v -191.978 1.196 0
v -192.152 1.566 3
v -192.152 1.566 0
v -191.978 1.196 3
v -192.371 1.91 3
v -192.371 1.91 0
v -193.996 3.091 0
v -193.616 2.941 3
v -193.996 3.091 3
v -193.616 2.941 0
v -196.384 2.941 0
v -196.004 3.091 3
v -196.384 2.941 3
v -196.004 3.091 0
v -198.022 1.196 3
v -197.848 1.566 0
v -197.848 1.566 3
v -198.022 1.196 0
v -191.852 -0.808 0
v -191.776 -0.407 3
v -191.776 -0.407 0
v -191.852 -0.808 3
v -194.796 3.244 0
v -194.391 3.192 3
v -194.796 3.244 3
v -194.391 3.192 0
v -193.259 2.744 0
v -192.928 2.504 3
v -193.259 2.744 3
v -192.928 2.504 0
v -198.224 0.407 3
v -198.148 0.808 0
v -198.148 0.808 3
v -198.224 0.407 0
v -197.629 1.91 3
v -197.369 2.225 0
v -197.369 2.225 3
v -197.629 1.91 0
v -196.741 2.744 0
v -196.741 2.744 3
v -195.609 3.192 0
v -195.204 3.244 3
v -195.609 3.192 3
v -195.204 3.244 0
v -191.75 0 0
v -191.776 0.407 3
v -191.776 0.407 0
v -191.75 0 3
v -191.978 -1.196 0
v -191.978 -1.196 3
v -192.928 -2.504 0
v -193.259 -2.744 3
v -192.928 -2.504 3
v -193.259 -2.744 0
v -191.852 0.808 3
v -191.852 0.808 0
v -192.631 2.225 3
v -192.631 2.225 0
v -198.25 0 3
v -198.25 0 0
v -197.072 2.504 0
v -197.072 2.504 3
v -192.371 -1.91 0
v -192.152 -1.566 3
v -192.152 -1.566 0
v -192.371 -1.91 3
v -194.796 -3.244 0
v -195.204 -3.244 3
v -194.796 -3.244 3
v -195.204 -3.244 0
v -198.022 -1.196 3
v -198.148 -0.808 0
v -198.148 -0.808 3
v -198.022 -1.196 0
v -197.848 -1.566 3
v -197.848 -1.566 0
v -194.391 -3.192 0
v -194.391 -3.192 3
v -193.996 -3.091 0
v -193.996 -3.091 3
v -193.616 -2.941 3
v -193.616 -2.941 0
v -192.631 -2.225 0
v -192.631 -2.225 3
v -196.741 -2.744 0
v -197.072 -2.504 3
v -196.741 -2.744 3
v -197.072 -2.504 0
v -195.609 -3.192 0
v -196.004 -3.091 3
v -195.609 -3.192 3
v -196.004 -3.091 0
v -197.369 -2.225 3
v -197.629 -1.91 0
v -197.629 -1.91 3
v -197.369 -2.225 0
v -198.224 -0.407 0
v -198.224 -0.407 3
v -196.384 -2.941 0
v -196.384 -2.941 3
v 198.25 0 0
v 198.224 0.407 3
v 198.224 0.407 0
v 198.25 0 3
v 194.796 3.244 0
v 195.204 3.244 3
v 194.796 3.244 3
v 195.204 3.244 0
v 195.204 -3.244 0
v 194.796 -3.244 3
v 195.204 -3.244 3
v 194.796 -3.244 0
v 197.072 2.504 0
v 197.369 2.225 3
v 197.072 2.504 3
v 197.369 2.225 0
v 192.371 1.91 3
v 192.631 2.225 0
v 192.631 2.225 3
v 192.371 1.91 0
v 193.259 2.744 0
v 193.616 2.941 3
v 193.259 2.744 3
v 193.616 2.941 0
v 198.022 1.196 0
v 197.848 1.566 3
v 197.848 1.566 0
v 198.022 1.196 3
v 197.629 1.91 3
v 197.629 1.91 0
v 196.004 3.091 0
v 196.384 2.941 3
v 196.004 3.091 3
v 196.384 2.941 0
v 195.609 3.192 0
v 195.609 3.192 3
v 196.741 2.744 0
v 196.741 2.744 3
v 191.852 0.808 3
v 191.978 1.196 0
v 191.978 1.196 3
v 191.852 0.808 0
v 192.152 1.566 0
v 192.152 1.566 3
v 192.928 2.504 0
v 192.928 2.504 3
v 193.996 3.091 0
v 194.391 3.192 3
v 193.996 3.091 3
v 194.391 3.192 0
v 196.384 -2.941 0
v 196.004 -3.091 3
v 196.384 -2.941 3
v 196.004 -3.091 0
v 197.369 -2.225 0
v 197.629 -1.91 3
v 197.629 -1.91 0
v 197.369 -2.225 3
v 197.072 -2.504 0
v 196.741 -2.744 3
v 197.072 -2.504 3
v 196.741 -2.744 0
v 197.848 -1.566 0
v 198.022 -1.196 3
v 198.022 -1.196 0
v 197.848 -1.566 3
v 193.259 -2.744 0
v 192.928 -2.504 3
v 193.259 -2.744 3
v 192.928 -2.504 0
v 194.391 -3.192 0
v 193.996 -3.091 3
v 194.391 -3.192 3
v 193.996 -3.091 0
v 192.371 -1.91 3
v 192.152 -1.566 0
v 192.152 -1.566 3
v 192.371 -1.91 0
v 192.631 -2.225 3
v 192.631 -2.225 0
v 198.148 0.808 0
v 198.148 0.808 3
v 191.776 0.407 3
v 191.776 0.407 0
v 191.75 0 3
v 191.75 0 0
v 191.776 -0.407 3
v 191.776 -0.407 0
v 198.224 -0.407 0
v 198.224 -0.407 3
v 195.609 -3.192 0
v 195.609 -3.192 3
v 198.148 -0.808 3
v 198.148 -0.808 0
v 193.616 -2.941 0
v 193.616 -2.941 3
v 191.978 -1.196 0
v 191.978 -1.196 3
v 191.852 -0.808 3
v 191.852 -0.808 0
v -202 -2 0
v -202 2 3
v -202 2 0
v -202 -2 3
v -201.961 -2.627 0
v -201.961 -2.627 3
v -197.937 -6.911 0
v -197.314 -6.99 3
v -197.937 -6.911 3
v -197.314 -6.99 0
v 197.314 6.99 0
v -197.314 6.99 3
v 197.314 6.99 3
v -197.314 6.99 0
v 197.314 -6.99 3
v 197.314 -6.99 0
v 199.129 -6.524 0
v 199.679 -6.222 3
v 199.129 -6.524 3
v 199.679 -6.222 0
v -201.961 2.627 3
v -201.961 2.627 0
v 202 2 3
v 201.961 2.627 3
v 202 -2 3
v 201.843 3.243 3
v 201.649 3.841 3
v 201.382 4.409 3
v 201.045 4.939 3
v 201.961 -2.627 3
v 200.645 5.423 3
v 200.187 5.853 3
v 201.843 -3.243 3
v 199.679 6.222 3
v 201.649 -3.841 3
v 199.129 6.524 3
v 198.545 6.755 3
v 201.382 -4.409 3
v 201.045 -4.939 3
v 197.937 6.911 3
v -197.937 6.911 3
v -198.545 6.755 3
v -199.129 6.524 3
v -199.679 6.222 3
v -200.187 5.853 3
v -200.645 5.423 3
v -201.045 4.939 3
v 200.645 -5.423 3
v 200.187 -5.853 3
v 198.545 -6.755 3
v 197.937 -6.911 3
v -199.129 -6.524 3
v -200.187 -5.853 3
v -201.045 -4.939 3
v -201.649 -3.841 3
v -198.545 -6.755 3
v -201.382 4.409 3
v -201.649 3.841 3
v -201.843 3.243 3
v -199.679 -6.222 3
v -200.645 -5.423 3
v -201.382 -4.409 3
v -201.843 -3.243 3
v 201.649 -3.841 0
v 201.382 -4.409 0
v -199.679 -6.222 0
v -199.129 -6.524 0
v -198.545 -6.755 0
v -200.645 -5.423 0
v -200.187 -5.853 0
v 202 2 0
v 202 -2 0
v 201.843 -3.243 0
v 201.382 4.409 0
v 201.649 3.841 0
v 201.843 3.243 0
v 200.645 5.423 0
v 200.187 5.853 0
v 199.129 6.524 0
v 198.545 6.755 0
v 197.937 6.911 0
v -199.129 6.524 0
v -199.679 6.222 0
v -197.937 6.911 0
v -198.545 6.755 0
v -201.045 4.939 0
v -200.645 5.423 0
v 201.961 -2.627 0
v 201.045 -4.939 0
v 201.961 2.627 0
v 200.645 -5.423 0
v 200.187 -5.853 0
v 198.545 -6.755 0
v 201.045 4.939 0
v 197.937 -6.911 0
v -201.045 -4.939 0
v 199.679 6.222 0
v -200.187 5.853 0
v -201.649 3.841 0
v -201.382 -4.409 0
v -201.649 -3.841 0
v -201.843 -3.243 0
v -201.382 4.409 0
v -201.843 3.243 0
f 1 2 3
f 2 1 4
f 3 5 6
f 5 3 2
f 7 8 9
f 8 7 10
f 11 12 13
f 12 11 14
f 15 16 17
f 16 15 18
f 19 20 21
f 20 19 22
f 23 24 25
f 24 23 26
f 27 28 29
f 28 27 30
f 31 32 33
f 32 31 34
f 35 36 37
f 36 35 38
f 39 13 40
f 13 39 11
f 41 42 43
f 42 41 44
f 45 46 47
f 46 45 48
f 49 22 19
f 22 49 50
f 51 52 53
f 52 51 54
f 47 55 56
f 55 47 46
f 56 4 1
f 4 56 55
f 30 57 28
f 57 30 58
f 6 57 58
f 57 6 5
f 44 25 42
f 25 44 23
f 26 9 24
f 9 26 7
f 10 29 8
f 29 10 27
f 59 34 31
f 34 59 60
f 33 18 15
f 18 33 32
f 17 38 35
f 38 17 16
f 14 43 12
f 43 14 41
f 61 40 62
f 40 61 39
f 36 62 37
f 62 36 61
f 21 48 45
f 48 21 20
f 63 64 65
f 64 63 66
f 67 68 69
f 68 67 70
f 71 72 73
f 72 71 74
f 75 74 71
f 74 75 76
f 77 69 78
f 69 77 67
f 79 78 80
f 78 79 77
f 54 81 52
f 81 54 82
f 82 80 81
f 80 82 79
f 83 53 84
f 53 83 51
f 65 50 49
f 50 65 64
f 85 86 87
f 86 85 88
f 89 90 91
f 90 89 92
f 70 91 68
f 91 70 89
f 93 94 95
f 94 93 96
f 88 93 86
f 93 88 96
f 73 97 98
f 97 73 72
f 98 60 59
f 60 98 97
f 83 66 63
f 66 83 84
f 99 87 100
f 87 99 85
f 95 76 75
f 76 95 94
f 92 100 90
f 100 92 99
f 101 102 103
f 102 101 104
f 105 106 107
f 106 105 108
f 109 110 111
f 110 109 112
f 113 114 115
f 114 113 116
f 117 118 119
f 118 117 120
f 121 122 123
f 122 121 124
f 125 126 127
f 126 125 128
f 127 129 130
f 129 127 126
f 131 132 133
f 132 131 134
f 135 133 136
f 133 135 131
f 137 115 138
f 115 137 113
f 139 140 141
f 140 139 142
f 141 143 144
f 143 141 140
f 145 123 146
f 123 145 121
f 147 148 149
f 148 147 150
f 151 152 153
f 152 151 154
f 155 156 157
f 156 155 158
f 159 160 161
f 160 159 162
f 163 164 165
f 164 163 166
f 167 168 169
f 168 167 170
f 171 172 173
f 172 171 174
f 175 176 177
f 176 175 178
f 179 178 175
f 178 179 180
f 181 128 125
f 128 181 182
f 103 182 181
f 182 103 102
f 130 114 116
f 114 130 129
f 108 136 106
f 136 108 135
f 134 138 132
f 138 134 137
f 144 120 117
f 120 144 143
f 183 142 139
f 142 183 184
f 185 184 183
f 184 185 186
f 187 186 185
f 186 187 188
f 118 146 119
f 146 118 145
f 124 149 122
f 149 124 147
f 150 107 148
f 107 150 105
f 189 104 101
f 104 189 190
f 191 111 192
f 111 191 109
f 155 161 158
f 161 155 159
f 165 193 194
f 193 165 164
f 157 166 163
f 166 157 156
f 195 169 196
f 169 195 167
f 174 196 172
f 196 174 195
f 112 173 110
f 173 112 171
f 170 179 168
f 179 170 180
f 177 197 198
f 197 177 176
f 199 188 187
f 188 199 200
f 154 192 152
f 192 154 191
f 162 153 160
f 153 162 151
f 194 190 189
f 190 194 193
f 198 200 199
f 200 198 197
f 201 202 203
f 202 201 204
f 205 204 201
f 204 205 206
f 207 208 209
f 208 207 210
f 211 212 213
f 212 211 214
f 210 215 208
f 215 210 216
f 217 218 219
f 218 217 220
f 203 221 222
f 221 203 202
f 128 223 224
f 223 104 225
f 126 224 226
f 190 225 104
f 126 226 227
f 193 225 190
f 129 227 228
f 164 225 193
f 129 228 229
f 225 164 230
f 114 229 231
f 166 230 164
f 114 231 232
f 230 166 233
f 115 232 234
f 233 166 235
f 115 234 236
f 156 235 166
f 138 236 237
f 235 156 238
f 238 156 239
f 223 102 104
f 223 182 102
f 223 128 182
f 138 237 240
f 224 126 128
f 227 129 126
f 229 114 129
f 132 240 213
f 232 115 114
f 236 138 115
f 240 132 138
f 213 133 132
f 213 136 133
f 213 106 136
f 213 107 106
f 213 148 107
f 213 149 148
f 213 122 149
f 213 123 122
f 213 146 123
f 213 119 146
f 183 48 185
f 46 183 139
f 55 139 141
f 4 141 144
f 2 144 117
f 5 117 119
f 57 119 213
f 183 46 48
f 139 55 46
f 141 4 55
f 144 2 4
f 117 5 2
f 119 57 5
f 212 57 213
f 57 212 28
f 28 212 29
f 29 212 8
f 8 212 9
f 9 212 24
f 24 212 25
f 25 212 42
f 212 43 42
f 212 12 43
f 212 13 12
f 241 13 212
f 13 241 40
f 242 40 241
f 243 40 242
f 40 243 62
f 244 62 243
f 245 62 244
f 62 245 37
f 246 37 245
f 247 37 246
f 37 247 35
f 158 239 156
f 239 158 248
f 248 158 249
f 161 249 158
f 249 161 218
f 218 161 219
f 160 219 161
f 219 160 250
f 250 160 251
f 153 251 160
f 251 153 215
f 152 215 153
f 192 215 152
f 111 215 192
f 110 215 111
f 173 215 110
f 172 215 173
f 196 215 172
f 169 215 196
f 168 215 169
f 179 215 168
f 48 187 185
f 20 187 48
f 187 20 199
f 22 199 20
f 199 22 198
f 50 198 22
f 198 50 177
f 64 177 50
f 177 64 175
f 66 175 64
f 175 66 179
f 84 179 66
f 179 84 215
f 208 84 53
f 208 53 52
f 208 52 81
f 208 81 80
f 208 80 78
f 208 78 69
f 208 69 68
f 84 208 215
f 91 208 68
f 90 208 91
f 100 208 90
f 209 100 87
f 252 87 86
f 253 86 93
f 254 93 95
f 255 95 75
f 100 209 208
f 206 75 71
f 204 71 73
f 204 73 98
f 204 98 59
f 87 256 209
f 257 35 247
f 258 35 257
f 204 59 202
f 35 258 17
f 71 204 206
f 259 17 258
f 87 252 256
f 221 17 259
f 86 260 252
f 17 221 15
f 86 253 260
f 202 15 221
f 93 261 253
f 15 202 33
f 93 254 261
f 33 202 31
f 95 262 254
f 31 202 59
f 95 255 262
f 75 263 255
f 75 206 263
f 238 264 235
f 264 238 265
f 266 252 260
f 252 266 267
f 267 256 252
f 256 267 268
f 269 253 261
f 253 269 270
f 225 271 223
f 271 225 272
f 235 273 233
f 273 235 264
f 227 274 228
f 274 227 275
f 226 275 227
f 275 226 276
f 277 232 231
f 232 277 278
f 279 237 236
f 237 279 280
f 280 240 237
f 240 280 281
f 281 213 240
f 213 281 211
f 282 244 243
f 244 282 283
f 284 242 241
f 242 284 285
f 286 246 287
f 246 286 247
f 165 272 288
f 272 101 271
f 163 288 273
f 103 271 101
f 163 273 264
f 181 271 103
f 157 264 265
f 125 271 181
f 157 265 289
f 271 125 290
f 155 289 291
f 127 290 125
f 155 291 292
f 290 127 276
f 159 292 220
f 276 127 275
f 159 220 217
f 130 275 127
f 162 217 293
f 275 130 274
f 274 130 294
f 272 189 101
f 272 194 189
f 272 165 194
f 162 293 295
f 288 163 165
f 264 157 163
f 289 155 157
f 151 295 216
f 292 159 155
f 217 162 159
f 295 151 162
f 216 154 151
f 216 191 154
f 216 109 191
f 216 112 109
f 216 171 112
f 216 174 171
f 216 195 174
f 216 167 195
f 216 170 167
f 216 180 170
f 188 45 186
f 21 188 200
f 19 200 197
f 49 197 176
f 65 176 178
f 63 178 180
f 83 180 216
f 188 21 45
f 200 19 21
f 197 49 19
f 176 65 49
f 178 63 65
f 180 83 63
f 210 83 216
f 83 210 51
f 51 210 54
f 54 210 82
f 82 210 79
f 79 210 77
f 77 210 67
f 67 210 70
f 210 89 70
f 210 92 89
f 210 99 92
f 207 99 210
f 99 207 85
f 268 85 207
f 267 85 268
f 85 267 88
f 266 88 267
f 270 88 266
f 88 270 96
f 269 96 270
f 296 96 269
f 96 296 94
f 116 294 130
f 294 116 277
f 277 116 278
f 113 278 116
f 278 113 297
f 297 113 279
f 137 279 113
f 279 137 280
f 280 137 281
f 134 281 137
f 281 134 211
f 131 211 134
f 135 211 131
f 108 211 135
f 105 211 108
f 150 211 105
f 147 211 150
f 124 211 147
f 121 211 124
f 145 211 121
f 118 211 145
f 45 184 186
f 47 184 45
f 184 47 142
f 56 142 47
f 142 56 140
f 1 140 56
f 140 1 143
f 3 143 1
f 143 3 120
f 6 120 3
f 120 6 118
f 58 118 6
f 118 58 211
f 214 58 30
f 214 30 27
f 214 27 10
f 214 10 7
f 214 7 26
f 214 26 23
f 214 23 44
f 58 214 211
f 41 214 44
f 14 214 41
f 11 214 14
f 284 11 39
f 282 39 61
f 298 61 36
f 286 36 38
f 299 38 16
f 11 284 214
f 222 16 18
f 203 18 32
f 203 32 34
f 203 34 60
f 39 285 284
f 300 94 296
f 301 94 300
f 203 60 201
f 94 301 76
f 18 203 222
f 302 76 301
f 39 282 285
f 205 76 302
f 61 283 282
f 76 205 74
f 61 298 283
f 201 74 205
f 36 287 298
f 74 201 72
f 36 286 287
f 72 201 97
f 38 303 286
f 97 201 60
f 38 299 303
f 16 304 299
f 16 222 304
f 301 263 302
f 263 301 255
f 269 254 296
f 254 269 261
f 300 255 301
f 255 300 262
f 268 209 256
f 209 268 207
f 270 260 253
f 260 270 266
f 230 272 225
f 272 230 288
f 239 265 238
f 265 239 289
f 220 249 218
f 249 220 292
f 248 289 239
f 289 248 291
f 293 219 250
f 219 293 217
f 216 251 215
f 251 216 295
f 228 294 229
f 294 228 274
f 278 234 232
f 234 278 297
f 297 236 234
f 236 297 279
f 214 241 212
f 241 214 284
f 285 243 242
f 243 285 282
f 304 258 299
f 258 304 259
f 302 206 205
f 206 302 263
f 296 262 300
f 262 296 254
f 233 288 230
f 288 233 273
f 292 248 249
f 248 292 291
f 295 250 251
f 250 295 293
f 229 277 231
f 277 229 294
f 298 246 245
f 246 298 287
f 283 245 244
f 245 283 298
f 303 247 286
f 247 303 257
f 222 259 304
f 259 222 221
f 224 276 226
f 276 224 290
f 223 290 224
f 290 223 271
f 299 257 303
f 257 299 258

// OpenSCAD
$fn = 50;


difference() {
	union() {
		hull() {
			translate(v = [-197.0000000000, 2.0000000000, 0]) {
				cylinder(h = 3, r = 5);
			}
			translate(v = [197.0000000000, 2.0000000000, 0]) {
				cylinder(h = 3, r = 5);
			}
			translate(v = [-197.0000000000, -2.0000000000, 0]) {
				cylinder(h = 3, r = 5);
			}
			translate(v = [197.0000000000, -2.0000000000, 0]) {
				cylinder(h = 3, r = 5);
			}
		}
	}
	union() {
		translate(v = [-195.0000000000, 0.0000000000, -100.0000000000]) {
			cylinder(h = 200, r = 3.2500000000);
		}
		translate(v = [-195.0000000000, 0.0000000000, -100.0000000000]) {
			cylinder(h = 200, r = 3.2500000000);
		}
		translate(v = [195.0000000000, 0.0000000000, -100.0000000000]) {
			cylinder(h = 200, r = 3.2500000000);
		}
		translate(v = [195.0000000000, 0.0000000000, -100.0000000000]) {
			cylinder(h = 200, r = 3.2500000000);
		}
	}
}
